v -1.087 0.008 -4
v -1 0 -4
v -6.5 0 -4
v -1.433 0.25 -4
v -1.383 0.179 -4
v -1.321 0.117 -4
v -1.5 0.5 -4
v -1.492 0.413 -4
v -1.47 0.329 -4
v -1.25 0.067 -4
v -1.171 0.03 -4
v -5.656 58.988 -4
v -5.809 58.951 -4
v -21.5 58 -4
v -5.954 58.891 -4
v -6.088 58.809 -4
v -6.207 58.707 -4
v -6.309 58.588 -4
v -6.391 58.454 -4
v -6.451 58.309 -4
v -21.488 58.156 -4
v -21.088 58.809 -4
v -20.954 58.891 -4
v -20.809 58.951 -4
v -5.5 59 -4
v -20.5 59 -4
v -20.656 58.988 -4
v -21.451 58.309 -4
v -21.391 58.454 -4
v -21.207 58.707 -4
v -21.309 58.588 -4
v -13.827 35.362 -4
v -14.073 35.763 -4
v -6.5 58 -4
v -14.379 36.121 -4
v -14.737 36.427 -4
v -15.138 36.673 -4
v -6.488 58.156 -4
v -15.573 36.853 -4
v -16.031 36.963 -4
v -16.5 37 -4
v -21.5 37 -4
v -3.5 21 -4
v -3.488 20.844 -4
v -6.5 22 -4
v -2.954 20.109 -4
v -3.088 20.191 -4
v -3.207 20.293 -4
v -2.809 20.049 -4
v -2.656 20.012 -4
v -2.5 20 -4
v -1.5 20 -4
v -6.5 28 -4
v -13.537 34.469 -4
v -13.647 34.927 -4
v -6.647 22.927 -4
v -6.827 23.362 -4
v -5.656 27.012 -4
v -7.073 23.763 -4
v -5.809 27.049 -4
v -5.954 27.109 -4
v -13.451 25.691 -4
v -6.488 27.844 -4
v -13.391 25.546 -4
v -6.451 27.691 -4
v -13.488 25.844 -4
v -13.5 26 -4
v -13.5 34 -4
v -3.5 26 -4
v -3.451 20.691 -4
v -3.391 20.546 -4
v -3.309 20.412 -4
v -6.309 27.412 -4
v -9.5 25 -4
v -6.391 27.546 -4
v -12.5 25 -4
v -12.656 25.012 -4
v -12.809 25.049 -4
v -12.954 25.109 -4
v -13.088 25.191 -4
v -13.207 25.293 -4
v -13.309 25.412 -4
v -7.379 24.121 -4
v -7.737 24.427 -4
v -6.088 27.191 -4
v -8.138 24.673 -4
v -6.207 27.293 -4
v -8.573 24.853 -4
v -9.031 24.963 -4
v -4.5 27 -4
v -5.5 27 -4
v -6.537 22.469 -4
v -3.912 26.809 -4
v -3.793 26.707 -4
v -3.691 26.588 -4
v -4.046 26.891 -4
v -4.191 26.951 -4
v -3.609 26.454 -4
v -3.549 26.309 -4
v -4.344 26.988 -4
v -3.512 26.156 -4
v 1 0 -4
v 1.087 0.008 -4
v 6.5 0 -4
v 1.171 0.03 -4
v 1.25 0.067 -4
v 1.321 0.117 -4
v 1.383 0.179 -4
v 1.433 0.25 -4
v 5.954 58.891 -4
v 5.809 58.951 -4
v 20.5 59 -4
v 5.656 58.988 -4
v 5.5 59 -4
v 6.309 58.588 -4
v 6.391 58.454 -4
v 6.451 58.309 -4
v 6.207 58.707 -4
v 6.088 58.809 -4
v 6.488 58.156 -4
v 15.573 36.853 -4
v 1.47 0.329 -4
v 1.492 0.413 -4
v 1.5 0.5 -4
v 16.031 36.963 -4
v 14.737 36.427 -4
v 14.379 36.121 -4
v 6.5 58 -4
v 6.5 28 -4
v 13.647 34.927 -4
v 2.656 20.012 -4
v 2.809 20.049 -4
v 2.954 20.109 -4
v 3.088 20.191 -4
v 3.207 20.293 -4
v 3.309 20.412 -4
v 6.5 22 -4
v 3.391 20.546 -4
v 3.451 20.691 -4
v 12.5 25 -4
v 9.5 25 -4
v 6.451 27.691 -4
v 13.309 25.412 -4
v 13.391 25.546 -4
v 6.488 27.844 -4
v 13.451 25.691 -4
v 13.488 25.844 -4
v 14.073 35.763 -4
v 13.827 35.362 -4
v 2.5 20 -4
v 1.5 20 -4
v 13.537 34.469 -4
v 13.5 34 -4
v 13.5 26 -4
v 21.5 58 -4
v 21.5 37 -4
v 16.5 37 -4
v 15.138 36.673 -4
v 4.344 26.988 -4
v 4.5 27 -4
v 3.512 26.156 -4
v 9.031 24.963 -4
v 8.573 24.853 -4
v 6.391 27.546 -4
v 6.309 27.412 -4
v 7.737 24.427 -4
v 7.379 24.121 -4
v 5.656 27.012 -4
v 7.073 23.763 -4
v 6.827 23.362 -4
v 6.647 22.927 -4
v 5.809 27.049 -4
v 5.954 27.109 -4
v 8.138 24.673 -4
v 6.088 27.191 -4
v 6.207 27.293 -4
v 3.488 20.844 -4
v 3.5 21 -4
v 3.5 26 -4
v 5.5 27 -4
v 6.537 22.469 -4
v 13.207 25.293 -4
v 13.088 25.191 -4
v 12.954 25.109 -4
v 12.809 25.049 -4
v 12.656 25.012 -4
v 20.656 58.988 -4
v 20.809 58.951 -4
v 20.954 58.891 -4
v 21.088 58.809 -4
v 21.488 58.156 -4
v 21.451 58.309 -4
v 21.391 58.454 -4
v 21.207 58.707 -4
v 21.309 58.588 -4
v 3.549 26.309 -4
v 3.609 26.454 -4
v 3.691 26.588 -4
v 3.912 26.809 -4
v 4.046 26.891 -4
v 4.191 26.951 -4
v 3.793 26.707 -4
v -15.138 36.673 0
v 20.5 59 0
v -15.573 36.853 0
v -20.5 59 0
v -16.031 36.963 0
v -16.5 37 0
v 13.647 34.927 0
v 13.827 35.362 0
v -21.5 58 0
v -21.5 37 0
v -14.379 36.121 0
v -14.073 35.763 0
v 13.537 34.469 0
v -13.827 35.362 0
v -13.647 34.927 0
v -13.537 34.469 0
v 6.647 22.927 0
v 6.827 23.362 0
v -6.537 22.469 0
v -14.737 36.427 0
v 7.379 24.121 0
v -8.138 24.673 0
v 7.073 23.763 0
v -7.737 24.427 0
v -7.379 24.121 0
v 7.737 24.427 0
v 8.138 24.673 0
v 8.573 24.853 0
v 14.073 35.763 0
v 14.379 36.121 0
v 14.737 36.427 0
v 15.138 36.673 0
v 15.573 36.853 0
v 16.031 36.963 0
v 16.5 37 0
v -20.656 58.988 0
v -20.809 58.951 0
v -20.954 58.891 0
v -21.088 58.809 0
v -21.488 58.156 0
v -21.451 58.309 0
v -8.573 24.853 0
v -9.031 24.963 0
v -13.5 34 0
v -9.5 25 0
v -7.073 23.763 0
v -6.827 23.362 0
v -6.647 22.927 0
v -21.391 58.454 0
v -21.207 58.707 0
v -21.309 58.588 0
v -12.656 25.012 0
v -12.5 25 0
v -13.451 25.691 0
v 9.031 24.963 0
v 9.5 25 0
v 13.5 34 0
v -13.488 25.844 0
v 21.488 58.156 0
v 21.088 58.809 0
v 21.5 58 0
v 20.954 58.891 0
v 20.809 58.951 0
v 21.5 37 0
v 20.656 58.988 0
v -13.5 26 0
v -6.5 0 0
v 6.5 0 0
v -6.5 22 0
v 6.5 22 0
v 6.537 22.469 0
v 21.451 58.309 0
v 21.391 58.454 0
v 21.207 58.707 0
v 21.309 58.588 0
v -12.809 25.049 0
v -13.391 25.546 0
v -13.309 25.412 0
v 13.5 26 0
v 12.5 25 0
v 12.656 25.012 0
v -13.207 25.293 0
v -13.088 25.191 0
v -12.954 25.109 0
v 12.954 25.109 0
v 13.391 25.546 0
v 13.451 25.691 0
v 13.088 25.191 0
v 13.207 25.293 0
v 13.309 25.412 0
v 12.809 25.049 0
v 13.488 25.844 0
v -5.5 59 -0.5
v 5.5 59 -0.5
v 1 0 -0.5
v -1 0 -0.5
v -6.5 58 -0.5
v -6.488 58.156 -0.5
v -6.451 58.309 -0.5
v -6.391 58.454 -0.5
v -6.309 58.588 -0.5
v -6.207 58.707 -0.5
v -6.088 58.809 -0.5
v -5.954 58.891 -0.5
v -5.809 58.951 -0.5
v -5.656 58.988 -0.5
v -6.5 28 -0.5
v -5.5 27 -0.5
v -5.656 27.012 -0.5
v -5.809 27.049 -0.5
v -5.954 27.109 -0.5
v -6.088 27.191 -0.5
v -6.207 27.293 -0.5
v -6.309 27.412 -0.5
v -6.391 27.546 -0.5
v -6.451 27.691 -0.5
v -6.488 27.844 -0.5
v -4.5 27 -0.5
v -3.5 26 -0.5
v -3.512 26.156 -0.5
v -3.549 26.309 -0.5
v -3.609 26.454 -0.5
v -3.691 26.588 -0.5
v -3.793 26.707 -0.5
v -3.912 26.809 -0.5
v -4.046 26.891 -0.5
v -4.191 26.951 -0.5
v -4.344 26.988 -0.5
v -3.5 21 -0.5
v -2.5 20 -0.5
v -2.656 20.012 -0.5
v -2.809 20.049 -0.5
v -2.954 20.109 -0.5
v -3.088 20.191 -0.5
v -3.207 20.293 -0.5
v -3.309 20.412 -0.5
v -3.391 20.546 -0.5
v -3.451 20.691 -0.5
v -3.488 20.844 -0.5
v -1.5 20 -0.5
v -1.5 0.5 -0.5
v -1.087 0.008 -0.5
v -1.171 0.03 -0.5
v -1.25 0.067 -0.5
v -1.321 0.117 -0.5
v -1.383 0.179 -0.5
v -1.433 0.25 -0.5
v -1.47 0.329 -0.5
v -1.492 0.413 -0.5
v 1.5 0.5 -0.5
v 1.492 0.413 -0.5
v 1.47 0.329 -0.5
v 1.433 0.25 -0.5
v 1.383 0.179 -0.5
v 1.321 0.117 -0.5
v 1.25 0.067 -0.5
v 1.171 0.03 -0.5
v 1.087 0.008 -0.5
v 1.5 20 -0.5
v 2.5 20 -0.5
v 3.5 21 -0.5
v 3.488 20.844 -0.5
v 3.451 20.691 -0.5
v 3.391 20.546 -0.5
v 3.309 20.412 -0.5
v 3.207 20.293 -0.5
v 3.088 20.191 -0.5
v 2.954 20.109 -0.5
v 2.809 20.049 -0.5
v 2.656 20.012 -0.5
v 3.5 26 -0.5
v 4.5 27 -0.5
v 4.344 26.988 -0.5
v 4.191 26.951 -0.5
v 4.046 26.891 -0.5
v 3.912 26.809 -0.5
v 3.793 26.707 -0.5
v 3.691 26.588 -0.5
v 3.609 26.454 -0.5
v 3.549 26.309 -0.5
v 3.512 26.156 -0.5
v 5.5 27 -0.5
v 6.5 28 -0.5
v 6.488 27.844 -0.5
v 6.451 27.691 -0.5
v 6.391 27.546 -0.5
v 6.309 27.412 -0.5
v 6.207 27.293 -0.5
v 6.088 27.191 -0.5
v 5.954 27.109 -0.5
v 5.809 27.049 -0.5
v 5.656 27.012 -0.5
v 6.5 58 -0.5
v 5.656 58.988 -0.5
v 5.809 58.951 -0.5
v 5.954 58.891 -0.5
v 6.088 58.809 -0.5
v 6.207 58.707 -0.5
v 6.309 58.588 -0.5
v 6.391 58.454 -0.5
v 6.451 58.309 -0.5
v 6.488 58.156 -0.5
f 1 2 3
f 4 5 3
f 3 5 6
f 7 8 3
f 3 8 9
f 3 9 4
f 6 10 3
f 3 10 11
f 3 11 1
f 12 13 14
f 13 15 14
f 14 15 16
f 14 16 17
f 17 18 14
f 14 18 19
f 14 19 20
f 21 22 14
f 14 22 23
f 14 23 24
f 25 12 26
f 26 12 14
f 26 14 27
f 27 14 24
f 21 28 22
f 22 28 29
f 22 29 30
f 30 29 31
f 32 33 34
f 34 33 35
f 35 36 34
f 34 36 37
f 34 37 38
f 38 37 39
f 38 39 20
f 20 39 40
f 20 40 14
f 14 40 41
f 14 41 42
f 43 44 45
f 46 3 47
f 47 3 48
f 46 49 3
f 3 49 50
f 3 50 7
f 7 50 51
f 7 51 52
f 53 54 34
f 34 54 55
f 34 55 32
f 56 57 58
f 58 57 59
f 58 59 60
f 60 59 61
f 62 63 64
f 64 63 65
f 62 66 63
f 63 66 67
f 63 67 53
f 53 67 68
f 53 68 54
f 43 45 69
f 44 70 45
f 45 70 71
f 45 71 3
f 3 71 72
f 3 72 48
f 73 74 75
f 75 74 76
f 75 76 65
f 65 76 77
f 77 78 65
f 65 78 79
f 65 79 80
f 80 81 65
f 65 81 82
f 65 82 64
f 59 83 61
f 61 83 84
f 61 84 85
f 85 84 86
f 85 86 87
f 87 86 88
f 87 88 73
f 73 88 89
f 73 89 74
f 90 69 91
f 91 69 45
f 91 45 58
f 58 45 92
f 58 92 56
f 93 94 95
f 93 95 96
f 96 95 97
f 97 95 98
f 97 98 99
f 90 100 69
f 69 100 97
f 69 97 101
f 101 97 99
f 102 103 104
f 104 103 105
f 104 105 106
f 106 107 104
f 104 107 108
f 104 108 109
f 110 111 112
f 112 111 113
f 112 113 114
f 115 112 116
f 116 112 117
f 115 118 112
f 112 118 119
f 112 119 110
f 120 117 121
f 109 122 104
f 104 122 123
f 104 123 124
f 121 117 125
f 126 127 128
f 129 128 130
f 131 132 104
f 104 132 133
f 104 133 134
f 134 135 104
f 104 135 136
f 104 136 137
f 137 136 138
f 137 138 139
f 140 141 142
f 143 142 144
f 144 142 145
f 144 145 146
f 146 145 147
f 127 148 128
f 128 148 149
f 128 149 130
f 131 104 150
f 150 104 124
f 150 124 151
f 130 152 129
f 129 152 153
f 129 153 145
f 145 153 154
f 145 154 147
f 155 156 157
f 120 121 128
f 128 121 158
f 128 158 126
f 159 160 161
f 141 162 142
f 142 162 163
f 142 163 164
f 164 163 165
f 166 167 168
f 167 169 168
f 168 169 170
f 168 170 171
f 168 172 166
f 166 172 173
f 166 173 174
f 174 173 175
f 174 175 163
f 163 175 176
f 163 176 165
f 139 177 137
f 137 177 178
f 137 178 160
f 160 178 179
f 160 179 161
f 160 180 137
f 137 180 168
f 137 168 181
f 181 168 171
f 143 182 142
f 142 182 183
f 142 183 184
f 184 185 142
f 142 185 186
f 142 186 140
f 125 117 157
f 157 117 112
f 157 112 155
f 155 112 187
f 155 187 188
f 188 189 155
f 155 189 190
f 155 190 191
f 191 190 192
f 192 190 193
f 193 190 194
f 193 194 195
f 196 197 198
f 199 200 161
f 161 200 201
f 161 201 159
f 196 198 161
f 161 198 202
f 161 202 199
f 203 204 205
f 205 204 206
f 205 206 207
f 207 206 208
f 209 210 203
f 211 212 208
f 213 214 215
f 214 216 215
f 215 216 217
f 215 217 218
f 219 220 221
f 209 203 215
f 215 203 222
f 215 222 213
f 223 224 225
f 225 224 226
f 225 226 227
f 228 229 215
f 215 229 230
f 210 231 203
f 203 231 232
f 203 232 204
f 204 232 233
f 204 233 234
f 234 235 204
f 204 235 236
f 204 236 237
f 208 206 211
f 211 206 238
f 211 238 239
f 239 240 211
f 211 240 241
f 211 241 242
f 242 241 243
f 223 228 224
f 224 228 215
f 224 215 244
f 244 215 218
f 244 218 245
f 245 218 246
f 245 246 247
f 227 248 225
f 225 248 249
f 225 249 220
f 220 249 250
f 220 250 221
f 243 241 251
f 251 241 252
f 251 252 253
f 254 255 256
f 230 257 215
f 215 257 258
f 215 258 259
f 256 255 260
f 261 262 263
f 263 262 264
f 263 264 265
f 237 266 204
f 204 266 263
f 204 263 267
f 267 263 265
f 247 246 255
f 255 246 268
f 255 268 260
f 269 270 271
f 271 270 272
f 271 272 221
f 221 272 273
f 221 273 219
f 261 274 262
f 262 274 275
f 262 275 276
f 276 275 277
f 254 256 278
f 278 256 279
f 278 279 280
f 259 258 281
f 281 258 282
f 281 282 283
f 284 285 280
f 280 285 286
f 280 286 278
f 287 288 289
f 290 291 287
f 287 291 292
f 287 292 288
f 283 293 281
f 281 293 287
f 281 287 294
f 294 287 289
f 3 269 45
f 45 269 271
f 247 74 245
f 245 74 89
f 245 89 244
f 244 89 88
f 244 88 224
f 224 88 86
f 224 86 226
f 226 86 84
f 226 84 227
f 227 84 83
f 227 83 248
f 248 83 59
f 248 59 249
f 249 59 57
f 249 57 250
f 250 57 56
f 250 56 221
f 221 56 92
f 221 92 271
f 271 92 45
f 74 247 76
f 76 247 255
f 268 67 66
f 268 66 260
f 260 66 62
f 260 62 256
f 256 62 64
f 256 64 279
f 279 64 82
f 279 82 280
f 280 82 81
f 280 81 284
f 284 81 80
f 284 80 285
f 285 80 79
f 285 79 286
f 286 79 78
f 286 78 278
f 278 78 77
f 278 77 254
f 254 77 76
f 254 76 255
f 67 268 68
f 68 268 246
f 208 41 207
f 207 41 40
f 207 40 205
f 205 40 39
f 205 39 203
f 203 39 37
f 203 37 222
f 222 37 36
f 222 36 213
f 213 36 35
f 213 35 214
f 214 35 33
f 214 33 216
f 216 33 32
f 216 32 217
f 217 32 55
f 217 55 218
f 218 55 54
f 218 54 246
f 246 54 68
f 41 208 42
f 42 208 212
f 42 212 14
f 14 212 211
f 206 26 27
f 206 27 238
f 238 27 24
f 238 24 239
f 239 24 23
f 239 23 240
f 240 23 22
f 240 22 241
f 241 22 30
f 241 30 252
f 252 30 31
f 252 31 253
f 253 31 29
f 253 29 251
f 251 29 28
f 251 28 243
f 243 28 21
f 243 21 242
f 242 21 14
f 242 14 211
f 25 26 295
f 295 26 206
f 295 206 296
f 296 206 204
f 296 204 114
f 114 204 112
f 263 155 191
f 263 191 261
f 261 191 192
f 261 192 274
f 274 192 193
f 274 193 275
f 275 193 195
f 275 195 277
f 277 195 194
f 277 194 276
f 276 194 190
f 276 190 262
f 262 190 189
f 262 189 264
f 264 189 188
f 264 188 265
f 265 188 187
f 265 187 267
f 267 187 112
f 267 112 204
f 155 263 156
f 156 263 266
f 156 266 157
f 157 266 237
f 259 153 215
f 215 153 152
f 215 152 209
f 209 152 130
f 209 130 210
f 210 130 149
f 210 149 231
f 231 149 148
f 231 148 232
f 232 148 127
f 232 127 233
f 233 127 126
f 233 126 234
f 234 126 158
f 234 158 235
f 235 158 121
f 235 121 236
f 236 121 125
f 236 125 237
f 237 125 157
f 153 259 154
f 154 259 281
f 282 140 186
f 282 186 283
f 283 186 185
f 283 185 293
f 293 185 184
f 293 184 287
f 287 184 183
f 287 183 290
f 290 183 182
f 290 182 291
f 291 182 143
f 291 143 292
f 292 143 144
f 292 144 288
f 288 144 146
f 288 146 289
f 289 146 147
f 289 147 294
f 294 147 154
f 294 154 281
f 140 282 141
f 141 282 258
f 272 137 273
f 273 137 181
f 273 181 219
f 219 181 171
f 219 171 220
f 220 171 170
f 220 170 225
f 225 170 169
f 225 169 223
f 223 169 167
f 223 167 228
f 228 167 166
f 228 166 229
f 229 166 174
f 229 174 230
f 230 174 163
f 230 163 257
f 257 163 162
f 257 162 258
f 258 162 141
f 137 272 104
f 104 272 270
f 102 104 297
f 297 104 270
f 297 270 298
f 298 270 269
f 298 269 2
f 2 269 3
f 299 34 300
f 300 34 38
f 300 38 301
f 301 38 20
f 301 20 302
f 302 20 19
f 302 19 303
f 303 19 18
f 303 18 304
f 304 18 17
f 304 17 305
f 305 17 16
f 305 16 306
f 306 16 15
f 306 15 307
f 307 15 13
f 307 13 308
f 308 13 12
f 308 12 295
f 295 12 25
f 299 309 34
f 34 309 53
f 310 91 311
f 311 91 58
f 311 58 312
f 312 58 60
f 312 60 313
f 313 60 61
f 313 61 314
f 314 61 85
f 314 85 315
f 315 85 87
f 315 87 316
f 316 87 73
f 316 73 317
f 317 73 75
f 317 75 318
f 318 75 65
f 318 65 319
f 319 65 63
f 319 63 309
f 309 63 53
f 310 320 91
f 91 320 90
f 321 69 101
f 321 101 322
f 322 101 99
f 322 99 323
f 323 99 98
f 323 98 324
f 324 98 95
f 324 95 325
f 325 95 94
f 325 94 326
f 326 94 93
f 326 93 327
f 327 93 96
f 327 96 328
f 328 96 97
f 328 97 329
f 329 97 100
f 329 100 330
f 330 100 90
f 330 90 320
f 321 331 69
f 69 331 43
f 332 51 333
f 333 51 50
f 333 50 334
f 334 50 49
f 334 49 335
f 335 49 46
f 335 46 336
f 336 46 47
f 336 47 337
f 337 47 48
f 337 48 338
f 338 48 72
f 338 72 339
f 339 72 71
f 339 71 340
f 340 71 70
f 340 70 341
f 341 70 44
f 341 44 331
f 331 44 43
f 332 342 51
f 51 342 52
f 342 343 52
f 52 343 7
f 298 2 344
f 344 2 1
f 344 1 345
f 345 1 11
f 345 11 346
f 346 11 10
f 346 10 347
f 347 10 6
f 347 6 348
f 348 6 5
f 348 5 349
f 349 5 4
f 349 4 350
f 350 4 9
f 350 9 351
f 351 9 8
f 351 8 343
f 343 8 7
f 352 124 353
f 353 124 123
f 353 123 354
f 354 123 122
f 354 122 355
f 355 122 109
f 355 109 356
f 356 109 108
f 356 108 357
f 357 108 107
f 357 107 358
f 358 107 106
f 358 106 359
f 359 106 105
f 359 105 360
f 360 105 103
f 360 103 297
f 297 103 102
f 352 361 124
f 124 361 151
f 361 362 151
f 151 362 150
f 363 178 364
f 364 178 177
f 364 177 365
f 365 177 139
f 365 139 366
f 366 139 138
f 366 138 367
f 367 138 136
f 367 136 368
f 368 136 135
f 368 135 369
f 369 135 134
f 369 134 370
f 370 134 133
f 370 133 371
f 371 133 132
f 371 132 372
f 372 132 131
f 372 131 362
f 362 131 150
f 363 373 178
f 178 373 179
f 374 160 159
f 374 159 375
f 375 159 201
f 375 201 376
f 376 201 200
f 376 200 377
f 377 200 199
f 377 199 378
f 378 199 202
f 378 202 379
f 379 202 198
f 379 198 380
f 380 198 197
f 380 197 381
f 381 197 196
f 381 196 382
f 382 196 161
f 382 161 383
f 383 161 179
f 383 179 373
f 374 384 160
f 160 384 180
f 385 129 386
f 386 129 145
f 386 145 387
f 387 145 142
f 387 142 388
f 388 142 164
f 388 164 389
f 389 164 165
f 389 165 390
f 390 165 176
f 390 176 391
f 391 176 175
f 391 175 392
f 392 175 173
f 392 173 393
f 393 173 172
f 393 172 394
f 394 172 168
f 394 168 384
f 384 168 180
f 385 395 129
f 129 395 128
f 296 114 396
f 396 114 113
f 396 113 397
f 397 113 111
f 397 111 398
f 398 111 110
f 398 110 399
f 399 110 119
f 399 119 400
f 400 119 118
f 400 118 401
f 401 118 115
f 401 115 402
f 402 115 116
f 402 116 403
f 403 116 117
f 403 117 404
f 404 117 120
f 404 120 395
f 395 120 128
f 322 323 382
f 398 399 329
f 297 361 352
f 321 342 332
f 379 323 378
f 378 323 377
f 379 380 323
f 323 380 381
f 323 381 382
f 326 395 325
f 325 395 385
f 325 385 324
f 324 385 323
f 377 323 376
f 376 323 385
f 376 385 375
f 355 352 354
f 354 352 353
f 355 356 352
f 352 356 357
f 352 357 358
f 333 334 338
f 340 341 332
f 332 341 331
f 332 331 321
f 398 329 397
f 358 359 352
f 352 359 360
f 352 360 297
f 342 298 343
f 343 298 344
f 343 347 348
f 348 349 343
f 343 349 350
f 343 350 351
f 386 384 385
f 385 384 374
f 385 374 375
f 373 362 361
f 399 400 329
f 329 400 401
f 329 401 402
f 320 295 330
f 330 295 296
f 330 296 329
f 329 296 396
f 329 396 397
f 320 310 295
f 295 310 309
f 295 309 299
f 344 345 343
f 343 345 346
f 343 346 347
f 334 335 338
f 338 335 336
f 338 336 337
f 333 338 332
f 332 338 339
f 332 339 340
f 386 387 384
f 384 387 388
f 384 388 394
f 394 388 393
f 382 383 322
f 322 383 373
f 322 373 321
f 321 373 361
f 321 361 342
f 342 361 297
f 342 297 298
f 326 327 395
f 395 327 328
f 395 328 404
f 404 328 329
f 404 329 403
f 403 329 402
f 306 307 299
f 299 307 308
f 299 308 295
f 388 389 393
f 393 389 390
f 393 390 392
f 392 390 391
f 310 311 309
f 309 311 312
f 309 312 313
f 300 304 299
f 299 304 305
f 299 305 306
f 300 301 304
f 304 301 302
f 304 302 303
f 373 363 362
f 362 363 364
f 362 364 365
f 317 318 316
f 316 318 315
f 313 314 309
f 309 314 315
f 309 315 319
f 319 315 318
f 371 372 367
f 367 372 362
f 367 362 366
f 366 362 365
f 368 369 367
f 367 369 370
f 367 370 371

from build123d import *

# Parameters (mm, degrees)
CUT_EXTRUDE1_DEPTH = 3.5


with BuildPart() as part:
    # Sweep1: sweep along a path in Sketch3
    with BuildLine(Plane(origin=(0, 0, 0), x_dir=(0, 0, -1), z_dir=(1, 0, 0))) as sweep1_path:
        Line((0, 0), (4, 0))
    # Sketch4 → Sweep1 (sweep)
    with BuildSketch(Plane(origin=(0, 0, -4), x_dir=(-1, 0, 0), z_dir=(0, 0, -1))):
        with BuildLine():
            Line((-6.5, 0), (6.5, 0))
            Line((6.5, 0), (6.5, 22))
            ThreePointArc((6.5, 22), (7.378679656, 24.121320344), (9.5, 25))
            Line((9.5, 25), (12.5, 25))
            ThreePointArc((12.5, 25), (13.207106781, 25.292893219), (13.5, 26))
            Line((13.5, 26), (13.5, 34))
            ThreePointArc((13.5, 34), (14.378679656, 36.121320344), (16.5, 37))
            Line((16.5, 37), (21.5, 37))
            Line((21.5, 37), (21.5, 58))
            ThreePointArc((21.5, 58), (21.207106781, 58.707106781), (20.5, 59))
            Line((20.5, 59), (-20.5, 59))
            ThreePointArc((-20.5, 59), (-21.207106781, 58.707106781), (-21.5, 58))
            Line((-21.5, 58), (-21.5, 37))
            Line((-21.5, 37), (-16.5, 37))
            ThreePointArc((-16.5, 37), (-14.378679656, 36.121320344), (-13.5, 34))
            Line((-13.5, 34), (-13.5, 26))
            ThreePointArc((-13.5, 26), (-13.207106781, 25.292893219), (-12.5, 25))
            Line((-12.5, 25), (-9.5, 25))
            ThreePointArc((-9.5, 25), (-7.378679656, 24.121320344), (-6.5, 22))
            Line((-6.5, 22), (-6.5, 0))
        make_face()
    sweep(path=sweep1_path.line)

    # Sketch5 → Cut-Extrude1 (cut)
    with BuildSketch(Plane(origin=(0, 0, -4), x_dir=(-1, 0, 0), z_dir=(0, 0, -1))):
        with BuildLine():
            Line((-1, 0), (1, 0))
            ThreePointArc((1, 0), (1.353553391, 0.146446609), (1.5, 0.5))
            Line((1.5, 0.5), (1.5, 20))
            Line((1.5, 20), (2.5, 20))
            ThreePointArc((2.5, 20), (3.207106781, 20.292893219), (3.5, 21))
            Line((3.5, 21), (3.5, 26))
            ThreePointArc((3.5, 26), (3.792893219, 26.707106781), (4.5, 27))
            Line((4.5, 27), (5.5, 27))
            ThreePointArc((5.5, 27), (6.207106781, 27.292893219), (6.5, 28))
            Line((6.5, 28), (6.5, 58))
            ThreePointArc((6.5, 58), (6.207106781, 58.707106781), (5.5, 59))
            Line((5.5, 59), (-5.5, 59))
            ThreePointArc((-5.5, 59), (-6.207106781, 58.707106781), (-6.5, 58))
            Line((-6.5, 58), (-6.5, 28))
            ThreePointArc((-6.5, 28), (-6.207106781, 27.292893219), (-5.5, 27))
            Line((-5.5, 27), (-4.5, 27))
            ThreePointArc((-4.5, 27), (-3.792893219, 26.707106781), (-3.5, 26))
            Line((-3.5, 26), (-3.5, 21))
            ThreePointArc((-3.5, 21), (-3.207106781, 20.292893219), (-2.5, 20))
            Line((-2.5, 20), (-1.5, 20))
            Line((-1.5, 20), (-1.5, 0.5))
            ThreePointArc((-1.5, 0.5), (-1.353553391, 0.146446609), (-1, 0))
        make_face()
    extrude(amount=-CUT_EXTRUDE1_DEPTH, mode=Mode.SUBTRACT)


solid = part.part
